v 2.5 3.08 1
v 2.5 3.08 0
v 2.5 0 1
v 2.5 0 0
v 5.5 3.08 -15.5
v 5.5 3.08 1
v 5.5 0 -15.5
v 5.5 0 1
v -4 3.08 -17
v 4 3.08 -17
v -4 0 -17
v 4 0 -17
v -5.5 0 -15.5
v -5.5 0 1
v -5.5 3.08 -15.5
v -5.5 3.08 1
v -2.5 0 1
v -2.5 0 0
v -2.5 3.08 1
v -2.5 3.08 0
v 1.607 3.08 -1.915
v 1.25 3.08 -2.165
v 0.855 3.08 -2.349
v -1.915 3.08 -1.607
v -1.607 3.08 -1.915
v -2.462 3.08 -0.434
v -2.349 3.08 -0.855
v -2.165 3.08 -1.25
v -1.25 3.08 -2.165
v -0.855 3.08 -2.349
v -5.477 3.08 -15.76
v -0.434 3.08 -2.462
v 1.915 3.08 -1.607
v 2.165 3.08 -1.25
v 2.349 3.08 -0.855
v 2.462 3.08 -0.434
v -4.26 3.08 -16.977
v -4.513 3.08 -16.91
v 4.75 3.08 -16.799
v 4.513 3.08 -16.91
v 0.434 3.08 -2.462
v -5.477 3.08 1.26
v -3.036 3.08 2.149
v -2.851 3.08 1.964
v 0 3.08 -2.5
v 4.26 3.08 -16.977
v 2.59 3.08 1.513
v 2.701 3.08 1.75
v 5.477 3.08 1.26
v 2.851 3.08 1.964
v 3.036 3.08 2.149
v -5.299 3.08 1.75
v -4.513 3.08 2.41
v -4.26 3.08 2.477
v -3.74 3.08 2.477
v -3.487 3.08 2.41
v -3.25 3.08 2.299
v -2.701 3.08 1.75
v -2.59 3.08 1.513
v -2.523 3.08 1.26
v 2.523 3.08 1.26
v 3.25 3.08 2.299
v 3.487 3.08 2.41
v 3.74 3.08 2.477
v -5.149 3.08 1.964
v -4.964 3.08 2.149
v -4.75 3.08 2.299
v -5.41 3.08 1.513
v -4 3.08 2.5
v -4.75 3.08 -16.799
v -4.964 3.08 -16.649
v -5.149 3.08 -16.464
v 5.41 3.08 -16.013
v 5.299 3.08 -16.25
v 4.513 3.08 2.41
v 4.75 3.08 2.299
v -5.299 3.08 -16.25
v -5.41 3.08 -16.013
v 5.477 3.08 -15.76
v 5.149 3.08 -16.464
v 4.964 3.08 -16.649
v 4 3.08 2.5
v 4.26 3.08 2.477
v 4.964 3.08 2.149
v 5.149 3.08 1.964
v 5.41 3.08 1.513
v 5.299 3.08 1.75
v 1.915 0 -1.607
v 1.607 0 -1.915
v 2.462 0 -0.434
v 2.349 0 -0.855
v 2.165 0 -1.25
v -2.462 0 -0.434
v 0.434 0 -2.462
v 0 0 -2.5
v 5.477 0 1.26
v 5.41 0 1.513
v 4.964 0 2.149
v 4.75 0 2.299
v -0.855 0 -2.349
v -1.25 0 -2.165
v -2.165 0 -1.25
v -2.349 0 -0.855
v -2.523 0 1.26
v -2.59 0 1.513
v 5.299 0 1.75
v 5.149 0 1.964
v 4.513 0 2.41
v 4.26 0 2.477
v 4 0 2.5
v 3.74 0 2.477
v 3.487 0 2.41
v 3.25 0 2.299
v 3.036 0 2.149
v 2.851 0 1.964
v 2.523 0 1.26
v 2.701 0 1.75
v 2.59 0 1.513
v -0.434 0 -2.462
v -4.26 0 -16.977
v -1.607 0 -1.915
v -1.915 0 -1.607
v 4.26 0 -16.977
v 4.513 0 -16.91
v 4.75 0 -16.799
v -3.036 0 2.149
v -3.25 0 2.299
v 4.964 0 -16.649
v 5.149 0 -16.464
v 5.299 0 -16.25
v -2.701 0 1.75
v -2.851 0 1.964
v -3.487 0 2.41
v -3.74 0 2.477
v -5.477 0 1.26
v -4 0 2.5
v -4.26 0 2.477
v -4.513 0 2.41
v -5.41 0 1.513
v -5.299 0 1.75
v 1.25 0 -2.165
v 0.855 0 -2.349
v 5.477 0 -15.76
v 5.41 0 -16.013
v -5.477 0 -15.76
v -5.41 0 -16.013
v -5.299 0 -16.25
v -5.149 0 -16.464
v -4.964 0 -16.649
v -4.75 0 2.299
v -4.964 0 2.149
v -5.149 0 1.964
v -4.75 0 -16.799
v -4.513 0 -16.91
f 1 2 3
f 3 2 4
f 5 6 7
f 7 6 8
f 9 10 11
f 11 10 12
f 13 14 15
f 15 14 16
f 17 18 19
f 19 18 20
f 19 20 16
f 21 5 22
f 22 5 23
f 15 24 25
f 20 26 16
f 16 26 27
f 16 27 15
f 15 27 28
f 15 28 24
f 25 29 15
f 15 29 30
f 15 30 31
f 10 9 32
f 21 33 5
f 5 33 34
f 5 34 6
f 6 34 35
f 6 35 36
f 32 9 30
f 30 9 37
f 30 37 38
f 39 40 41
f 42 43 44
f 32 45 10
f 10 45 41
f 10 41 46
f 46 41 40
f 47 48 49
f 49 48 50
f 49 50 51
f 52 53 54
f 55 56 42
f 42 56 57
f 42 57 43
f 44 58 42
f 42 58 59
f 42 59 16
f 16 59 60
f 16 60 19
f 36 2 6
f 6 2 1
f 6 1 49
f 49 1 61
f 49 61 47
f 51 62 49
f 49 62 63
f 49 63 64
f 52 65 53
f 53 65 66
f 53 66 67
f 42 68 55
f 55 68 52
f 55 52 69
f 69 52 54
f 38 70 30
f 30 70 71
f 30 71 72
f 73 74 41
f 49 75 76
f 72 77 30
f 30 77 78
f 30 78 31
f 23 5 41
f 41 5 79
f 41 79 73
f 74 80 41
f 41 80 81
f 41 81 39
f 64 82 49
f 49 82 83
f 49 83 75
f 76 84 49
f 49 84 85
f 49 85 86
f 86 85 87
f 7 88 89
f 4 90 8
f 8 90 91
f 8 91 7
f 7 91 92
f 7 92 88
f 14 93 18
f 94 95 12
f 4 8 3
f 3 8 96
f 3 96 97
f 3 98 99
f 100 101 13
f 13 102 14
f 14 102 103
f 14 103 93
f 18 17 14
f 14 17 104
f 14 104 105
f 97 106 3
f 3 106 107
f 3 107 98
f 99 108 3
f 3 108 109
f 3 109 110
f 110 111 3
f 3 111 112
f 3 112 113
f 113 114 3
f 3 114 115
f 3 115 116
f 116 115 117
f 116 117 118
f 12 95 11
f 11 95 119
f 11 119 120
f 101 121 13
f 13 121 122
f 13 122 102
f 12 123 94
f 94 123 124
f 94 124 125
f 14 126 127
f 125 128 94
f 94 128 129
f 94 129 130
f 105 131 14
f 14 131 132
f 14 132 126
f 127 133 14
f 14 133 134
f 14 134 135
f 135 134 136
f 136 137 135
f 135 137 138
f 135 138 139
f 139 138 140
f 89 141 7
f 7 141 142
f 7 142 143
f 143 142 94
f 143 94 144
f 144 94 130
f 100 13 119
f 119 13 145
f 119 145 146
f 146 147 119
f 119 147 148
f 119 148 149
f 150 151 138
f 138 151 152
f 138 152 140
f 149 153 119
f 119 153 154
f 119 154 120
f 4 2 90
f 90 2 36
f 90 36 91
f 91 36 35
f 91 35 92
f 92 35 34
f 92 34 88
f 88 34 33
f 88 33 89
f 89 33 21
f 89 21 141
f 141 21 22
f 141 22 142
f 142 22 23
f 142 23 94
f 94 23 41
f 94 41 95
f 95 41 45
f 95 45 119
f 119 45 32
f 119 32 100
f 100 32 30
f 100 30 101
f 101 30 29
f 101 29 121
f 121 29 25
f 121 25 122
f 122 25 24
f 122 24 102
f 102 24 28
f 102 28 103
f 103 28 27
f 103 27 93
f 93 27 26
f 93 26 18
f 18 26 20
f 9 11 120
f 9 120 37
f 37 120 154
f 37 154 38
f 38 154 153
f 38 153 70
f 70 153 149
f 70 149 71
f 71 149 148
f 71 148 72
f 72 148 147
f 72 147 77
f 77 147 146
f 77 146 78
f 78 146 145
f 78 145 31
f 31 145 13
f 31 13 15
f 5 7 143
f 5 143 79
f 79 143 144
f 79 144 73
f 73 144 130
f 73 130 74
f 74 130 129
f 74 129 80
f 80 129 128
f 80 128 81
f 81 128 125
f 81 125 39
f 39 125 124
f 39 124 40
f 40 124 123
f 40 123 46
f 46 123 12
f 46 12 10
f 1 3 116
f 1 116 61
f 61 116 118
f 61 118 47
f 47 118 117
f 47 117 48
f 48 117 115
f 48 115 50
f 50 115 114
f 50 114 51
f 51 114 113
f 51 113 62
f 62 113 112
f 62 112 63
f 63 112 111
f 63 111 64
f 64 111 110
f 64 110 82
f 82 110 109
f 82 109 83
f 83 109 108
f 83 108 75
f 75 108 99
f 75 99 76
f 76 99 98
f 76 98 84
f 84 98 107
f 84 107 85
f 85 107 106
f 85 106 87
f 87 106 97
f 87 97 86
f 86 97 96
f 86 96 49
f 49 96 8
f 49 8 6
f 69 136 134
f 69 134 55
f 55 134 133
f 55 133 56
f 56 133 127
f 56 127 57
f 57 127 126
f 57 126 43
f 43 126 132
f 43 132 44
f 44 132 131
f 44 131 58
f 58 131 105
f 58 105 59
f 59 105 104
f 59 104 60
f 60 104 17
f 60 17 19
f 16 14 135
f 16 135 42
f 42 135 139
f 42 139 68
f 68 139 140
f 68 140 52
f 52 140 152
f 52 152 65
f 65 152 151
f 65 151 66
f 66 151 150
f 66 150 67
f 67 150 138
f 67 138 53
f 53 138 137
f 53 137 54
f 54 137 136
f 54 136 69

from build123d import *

# Parameters (mm, degrees)
BOSS_EXTRUDE1_DEPTH = 3.08
FILLET1_R           = 2.5
FILLET2_R           = 1.5


with BuildPart() as part:
    # Sketch2 → Boss-Extrude1 (new body)
    with BuildSketch(Plane(origin=(0, 0, 0), x_dir=(1, 0, 0), z_dir=(0, 1, 0))):
        Polygon((-2.5, 2.5), (-2.5, -2.5), (-5.5, -2.5), (-5.5, 17), (5.5, 17), (5.5, -2.5), (2.5, -2.5), (2.5, 2.5), align=None)
    extrude(amount=BOSS_EXTRUDE1_DEPTH)

    # Fillet1
    fillet1_edges = [part.edges().sort_by_distance(p)[0] for p in [
        (-2.5, 1.54, -2.5),
        (2.5, 1.54, -2.5),
    ]]
    fillet(fillet1_edges, radius=FILLET1_R - 0.0001)  # a hair under: the kernel refuses the full size

    # Fillet2
    fillet2_edges = [part.edges().sort_by_distance(p)[0] for p in [
        (-5.5, 1.54, -17),
        (5.5, 1.54, -17),
        (5.5, 1.54, 2.5),
        (2.5, 1.54, 2.5),
        (-5.5, 1.54, 2.5),
        (-2.5, 1.54, 2.5),
    ]]
    fillet(fillet2_edges, radius=FILLET2_R - 0.0001)  # a hair under: the kernel refuses the full size


solid = part.part
